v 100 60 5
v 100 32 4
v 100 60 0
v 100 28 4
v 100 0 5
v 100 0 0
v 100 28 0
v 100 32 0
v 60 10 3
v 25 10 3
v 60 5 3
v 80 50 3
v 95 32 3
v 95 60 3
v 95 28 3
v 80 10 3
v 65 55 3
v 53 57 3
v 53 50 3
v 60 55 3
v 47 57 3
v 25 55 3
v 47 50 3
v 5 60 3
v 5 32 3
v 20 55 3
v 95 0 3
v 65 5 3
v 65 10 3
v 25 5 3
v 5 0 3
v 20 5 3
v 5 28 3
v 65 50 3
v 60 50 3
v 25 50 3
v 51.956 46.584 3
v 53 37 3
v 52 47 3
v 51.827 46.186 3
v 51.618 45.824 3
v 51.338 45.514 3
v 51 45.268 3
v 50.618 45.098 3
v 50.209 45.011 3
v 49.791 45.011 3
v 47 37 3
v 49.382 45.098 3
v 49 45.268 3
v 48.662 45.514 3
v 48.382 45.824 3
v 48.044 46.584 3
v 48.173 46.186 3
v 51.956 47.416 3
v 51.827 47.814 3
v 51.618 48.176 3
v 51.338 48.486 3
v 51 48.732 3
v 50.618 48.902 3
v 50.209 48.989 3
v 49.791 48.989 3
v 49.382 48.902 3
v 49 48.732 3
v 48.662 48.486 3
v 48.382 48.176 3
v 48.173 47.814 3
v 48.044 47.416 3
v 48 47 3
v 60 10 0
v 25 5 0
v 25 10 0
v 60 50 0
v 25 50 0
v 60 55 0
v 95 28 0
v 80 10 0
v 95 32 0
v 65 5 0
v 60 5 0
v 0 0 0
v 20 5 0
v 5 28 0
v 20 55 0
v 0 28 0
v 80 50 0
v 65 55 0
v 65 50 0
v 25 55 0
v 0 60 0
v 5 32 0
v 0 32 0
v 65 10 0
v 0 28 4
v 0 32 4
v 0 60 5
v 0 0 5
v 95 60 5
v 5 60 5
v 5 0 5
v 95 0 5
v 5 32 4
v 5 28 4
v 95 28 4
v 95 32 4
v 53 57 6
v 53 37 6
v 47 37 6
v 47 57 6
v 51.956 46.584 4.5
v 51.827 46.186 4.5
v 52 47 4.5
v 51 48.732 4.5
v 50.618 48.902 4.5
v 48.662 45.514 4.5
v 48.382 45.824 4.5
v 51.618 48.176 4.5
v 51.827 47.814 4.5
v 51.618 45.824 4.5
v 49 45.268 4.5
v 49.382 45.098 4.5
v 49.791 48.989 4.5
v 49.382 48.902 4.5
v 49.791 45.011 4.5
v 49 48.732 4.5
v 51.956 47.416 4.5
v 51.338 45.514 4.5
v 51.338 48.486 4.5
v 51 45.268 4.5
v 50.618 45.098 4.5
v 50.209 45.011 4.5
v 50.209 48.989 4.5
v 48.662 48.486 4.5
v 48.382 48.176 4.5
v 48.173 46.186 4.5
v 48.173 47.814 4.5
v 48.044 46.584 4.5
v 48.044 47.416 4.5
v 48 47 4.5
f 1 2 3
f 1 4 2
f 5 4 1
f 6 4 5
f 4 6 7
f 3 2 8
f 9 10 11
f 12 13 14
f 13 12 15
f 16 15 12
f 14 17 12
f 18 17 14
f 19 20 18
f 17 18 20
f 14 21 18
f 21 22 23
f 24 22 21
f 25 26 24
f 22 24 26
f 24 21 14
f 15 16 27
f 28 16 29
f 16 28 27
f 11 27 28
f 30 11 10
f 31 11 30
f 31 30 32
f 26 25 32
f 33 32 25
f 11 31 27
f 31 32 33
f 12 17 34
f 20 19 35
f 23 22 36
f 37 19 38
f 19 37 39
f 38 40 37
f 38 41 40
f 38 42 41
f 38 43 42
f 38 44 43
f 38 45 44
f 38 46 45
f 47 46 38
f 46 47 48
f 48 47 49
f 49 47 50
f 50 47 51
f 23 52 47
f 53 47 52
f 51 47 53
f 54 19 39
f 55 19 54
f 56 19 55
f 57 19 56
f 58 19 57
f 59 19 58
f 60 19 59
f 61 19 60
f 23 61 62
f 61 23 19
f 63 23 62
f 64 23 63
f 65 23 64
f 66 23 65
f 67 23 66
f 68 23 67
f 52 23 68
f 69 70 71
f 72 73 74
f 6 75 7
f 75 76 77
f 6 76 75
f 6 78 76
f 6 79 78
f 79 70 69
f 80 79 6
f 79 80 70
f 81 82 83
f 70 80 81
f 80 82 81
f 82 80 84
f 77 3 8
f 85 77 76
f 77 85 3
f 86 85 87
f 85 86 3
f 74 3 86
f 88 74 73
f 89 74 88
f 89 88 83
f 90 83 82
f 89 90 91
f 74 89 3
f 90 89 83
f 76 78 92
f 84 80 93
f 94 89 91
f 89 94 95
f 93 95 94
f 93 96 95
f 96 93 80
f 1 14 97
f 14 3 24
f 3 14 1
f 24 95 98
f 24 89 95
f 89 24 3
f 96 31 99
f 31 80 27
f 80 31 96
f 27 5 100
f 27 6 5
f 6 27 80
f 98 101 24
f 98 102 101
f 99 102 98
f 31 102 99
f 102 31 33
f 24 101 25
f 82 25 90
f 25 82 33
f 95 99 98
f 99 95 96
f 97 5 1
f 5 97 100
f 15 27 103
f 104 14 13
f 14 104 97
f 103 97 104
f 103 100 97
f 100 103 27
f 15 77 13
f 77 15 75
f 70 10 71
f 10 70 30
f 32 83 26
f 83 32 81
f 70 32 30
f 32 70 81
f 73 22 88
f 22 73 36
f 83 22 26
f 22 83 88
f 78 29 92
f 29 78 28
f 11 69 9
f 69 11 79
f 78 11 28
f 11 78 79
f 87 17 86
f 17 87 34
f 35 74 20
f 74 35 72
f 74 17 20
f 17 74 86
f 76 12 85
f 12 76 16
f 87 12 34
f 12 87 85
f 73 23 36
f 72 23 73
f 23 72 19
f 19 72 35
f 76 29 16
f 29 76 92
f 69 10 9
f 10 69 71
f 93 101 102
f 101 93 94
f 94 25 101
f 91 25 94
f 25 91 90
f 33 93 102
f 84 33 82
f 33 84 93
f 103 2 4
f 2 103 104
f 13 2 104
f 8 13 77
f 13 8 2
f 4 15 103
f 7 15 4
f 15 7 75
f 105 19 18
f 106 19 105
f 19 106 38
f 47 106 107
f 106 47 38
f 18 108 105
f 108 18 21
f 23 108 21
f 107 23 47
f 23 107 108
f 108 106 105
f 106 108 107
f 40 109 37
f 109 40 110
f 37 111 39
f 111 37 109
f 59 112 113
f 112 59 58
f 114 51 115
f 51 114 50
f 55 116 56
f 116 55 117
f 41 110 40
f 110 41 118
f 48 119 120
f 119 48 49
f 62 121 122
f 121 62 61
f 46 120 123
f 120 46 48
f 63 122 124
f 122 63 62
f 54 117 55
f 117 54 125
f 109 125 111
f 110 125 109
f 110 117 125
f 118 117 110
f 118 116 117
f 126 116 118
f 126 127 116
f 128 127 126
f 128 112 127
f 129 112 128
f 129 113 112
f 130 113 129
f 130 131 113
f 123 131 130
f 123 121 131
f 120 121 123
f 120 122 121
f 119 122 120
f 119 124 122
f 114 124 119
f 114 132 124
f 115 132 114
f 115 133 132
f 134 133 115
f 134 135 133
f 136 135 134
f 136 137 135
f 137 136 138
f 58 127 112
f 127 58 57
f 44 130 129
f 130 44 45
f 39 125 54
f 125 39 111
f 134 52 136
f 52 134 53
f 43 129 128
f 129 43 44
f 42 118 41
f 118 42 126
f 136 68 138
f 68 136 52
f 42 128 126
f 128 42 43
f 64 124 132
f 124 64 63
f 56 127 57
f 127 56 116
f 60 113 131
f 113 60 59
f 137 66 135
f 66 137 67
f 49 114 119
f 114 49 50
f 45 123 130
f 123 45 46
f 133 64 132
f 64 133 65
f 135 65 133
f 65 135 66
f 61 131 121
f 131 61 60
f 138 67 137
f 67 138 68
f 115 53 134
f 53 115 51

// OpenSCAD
// Parameters
base_length = 100;
base_width = 60;
base_thickness = 3;
cutout_length = 60;
cutout_width = 40;

bracket_length = 30;
bracket_height = 20;
bracket_width = 10;

tab_width = 6;
tab_height = 20;
tab_thickness = 3;
hole_diameter = 4;

// Base Frame with detailed cutouts and flanges
module base_frame() {
    difference() {
        union() {
            // Main base
            cube([base_length, base_width, base_thickness]);

            // Side flanges
            translate([0, 0, 0])
                cube([5, base_width, base_thickness + 2]);
            translate([base_length - 5, 0, 0])
                cube([5, base_width, base_thickness + 2]);
        }

        // Central cutout
        translate([(base_length - cutout_length)/2, (base_width - cutout_width)/2, 0])
            cube([cutout_length, cutout_width, base_thickness + 1]);

        // Small slots (example: 2 slots on each side)
        for (i = [0 : 1]) {
            translate([20 + i * 40, 5, 0])
                cube([5, 10, base_thickness + 1]);
            translate([20 + i * 40, base_width - 15, 0])
                cube([5, 10, base_thickness + 1]);
        }

        // Notches
        translate([0, base_width/2 - 2, 0])
            cube([5, 4, base_thickness + 1]);
        translate([base_length - 5, base_width/2 - 2, 0])
            cube([5, 4, base_thickness + 1]);
    }
}

// Sloped Support Bracket with hollow underside
module sloped_support_bracket() {
    difference() {
        // Outer triangular prism
        polyhedron(
            points=[
                [0, 0, 0], // 0
                [bracket_length, 0, 0], // 1
                [bracket_length, bracket_width, 0], // 2
                [0, bracket_width, 0], // 3
                [0, 0, bracket_height], // 4
                [bracket_length, 0, bracket_height] // 5
            ],
            faces=[
                [0, 1, 2, 3],
                [0, 1, 5, 4],
                [1, 2, 5],
                [2, 3, 4, 5],
                [3, 0, 4]
            ]
        );

        // Hollow underside
        translate([5, 2, 0])
            cube([bracket_length - 10, bracket_width - 4, bracket_height - 2]);
    }
}

// Vertical Support Tab with hole
module vertical_support_tab() {
    difference() {
        cube([tab_width, tab_thickness, tab_height]);
        translate([tab_width/2, tab_thickness/2, tab_height/2])
            rotate([90, 0, 0])
            cylinder(h=tab_thickness + 1, r=hole_diameter/2, $fn=30);
    }
}

// Assembly
module assembly() {
    // Base Frame
    base_frame();

    // Sloped Brackets
    translate([5, 0, base_thickness])
        sloped_support_bracket();
    translate([base_length - bracket_length - 5, 0, base_thickness])
        mirror([1, 0, 0])
        sloped_support_bracket();

    // Vertical Support Tab
    translate([(base_length - tab_width)/2, base_width - tab_thickness, base_thickness])
        rotate([90, 0, 0])
        vertical_support_tab();
}

// Render the full assembly
assembly();
